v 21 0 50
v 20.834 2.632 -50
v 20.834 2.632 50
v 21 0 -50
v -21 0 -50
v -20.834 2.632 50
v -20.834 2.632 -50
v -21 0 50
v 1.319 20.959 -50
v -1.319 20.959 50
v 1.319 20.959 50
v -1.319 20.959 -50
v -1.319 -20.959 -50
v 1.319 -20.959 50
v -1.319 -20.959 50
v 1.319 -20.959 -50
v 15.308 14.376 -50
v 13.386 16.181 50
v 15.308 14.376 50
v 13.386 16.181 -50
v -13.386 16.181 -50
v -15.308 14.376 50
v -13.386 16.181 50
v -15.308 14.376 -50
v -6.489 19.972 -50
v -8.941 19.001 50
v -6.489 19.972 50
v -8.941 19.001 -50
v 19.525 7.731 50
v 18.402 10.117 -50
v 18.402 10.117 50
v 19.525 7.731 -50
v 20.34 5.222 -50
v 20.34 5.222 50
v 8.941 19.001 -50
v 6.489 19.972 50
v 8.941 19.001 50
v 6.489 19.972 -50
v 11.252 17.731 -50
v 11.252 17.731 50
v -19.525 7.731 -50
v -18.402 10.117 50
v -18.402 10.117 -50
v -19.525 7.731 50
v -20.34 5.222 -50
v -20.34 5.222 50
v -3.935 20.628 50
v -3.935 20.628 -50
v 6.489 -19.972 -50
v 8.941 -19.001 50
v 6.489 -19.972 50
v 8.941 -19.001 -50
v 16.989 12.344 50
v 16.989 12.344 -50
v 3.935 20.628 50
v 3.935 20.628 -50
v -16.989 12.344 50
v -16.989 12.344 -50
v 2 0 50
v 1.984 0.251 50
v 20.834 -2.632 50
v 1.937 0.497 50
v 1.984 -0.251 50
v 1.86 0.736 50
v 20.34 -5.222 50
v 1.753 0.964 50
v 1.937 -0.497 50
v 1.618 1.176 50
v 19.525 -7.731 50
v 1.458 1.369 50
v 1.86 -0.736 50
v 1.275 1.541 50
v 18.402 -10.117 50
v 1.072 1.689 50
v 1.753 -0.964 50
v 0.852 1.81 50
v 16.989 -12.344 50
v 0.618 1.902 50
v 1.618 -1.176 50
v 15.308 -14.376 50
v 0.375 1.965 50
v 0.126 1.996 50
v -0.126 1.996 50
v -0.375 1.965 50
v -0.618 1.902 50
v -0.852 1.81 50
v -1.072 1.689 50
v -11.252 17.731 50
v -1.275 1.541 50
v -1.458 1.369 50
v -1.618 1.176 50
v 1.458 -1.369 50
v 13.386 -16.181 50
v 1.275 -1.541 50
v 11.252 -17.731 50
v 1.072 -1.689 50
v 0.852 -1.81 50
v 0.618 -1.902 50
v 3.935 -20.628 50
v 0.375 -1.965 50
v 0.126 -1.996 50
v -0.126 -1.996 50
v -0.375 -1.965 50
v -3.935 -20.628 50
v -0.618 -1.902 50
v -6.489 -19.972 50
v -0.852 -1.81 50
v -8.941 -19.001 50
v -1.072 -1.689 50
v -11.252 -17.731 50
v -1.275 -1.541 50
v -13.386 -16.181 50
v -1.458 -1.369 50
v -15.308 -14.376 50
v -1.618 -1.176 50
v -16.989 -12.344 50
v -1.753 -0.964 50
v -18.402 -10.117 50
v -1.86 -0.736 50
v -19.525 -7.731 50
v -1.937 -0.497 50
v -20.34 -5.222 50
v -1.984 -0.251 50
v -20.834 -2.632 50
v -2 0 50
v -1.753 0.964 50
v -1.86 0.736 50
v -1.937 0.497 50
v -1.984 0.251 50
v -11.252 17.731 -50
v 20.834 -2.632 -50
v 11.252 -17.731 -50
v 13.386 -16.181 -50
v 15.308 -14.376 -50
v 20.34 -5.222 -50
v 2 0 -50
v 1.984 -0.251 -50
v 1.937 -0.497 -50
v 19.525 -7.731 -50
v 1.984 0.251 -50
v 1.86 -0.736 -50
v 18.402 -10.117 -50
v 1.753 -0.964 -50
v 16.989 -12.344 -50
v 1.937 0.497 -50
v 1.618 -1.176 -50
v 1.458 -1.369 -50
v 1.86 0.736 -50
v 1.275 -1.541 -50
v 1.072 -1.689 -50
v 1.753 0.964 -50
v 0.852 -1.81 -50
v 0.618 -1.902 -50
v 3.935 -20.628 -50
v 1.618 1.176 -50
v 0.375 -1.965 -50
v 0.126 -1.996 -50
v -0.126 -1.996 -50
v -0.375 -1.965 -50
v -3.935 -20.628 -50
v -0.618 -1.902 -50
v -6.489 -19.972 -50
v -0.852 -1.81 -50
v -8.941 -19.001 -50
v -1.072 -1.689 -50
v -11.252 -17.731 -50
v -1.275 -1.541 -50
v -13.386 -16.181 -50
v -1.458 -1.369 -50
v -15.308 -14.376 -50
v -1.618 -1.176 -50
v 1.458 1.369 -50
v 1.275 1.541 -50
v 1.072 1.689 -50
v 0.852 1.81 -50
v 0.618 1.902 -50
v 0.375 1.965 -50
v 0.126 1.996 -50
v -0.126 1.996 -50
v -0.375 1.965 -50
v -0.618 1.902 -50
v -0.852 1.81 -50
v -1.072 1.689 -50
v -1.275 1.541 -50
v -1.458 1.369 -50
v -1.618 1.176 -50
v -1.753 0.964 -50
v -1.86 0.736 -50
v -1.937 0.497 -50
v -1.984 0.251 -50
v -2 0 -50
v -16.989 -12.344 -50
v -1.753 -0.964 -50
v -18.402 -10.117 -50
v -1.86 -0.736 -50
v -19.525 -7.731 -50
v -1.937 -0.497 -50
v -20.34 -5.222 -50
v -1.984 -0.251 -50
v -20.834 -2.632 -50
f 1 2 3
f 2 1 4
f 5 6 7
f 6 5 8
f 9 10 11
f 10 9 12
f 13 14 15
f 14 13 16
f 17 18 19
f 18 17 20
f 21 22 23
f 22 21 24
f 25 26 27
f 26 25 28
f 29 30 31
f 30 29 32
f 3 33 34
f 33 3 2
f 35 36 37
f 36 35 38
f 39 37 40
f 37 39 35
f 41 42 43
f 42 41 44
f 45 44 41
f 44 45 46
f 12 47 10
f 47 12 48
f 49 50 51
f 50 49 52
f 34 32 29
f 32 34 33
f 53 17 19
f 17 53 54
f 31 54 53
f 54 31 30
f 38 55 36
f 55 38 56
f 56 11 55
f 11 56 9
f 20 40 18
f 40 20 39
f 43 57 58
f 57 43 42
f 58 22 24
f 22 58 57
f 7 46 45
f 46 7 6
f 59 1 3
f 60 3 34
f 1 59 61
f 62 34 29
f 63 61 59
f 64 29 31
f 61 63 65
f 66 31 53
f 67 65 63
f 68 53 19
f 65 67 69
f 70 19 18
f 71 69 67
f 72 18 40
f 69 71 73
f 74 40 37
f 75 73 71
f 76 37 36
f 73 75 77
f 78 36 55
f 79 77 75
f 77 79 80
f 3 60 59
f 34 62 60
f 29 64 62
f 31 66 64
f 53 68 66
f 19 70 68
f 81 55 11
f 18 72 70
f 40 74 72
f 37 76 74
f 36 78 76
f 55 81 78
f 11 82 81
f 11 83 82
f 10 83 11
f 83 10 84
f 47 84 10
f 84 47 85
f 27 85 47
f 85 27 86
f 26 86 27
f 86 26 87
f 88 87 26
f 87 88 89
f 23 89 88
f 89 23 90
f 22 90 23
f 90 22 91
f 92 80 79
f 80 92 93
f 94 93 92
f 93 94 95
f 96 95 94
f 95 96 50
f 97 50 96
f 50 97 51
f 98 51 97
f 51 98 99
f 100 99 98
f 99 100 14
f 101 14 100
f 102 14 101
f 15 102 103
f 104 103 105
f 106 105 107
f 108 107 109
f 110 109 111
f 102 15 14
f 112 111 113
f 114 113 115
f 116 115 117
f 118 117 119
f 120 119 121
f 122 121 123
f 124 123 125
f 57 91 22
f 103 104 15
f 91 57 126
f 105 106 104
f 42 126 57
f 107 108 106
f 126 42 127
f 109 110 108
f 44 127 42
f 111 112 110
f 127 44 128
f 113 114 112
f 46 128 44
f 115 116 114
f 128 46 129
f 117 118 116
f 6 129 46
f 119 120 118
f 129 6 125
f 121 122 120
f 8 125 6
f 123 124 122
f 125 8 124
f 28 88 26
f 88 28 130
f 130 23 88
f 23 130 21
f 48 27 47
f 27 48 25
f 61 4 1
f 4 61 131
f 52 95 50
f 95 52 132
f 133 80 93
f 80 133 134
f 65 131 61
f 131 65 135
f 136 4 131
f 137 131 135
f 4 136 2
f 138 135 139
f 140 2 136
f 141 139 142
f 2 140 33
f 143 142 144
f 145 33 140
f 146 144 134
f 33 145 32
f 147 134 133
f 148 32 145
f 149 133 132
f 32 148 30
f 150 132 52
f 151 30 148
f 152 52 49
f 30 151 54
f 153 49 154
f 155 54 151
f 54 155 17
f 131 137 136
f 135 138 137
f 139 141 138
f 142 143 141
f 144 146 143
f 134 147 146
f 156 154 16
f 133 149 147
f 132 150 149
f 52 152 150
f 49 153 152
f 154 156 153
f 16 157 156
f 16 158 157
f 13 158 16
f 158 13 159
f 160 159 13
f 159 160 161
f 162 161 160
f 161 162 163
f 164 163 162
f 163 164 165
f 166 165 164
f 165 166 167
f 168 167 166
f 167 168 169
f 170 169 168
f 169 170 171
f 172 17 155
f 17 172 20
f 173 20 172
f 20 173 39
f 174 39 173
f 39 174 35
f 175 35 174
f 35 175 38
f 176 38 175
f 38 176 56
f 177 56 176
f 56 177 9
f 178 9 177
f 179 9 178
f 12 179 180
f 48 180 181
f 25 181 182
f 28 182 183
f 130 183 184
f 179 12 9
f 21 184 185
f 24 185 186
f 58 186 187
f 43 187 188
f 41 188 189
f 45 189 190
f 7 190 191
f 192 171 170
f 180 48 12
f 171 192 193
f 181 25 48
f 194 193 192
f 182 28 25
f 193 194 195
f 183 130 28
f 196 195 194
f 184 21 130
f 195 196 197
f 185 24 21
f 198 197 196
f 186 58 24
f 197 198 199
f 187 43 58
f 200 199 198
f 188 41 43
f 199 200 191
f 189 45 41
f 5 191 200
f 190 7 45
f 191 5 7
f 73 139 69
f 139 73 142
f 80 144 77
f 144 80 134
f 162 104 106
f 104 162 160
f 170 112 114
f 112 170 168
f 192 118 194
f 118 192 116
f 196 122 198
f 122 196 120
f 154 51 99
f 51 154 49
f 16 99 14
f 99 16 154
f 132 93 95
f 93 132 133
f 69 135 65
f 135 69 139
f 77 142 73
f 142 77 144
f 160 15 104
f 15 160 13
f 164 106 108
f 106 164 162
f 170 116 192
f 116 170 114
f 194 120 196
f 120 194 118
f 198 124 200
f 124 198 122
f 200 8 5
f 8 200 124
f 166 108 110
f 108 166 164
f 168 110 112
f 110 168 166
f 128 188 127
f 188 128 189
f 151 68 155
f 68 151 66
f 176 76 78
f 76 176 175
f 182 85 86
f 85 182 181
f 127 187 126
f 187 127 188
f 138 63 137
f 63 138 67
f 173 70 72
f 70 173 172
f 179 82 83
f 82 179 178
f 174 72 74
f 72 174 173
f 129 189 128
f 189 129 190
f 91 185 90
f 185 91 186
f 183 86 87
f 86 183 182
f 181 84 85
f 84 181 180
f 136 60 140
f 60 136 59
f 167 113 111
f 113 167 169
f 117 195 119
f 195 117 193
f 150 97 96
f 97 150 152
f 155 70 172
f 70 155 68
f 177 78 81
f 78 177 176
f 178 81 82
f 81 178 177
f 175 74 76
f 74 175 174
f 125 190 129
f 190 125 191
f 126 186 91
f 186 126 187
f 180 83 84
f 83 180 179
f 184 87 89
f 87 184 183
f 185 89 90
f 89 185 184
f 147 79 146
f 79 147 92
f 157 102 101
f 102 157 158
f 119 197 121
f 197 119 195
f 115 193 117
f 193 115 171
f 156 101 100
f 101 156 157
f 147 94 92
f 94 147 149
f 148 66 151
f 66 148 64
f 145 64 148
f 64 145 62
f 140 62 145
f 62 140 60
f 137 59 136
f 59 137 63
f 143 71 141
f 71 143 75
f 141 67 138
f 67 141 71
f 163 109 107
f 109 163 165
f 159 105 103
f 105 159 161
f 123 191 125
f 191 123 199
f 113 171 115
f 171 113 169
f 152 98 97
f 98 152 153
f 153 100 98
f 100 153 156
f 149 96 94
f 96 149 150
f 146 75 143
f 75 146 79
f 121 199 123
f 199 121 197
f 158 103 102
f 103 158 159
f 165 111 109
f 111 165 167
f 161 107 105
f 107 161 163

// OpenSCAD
$fn = 50;


difference() {
	union() {
		translate(v = [0, 0, -50.0000000000]) {
			cylinder(h = 100, r = 21.0000000000);
		}
	}
	union() {
		translate(v = [0, 0, -100.0000000000]) {
			cylinder(h = 200, r = 2);
		}
	}
}
